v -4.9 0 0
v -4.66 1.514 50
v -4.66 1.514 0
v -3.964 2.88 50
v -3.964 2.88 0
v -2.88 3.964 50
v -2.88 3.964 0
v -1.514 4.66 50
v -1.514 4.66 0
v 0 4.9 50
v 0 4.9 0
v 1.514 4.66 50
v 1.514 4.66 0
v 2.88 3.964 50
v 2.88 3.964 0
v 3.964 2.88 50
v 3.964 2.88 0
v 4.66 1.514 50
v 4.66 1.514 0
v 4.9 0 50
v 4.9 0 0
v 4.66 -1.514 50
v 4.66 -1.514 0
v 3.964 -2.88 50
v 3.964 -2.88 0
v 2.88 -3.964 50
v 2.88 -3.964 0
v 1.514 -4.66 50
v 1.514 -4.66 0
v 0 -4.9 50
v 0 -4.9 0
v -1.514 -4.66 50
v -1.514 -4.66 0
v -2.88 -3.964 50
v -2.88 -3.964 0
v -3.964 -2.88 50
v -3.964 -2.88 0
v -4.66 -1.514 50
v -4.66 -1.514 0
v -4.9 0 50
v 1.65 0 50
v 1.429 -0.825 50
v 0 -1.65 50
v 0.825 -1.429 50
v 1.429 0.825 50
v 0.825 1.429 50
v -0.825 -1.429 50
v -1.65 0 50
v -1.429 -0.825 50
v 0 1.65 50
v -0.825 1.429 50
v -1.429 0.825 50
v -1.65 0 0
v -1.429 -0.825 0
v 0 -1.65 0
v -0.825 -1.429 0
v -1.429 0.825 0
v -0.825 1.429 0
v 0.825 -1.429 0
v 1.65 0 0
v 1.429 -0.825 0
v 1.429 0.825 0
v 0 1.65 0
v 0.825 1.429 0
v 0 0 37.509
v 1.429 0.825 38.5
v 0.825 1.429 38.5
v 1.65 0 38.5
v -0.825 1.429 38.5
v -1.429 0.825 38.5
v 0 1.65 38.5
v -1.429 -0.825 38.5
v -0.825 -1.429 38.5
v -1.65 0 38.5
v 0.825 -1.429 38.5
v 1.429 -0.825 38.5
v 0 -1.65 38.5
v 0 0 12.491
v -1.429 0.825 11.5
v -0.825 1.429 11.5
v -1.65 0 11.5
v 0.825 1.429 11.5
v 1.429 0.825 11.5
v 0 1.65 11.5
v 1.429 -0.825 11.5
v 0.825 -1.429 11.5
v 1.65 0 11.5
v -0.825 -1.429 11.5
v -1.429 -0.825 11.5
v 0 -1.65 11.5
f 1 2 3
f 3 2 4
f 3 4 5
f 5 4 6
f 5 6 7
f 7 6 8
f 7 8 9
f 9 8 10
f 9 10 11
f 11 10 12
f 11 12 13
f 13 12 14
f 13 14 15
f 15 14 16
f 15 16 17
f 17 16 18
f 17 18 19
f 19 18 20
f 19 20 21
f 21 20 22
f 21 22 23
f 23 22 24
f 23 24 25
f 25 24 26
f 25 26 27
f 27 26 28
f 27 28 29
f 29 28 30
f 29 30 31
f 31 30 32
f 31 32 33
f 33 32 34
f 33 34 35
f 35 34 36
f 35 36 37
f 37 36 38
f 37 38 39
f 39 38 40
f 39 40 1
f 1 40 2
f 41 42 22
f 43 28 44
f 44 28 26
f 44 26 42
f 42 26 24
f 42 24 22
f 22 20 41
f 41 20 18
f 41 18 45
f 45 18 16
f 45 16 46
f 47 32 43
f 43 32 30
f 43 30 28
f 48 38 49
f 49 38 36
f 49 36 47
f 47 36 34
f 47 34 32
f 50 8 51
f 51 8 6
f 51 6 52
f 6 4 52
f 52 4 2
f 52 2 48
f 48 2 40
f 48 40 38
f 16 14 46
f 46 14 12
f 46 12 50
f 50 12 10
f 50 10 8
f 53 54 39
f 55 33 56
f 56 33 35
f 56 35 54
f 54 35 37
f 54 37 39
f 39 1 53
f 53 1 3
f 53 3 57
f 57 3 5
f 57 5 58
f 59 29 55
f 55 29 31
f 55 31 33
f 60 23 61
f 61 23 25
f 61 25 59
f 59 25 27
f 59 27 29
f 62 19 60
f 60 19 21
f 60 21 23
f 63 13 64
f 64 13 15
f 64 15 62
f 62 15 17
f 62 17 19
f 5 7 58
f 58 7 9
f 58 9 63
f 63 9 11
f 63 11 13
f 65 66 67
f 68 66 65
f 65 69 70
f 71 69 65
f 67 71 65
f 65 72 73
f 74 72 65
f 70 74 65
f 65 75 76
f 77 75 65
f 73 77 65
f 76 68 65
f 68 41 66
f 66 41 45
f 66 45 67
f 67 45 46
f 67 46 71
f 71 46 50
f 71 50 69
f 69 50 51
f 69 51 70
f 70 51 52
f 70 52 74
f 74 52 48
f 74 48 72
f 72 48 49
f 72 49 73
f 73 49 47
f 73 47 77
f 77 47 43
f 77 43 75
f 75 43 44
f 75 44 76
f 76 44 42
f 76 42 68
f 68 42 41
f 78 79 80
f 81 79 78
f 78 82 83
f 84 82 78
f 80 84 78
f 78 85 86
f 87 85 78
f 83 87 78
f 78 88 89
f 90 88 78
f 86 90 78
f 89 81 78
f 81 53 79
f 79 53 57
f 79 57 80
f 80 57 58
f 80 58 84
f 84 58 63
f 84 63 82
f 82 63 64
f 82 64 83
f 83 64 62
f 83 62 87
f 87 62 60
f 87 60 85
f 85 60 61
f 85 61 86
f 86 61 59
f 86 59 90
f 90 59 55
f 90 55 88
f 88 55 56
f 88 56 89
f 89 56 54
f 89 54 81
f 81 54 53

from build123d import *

# Parameters (mm, degrees)
SKETCH_1_R             = 4.9
EXTRUDE_1_DEPTH        = 50
HOLE_WIZARD_M4_1_D     = 3.3
HOLE_WIZARD_M4_1_DEPTH = 11.5
HOLE_WIZARD_M4_1_TIP   = 0.991420021
HOLE_WIZARD_M4_2_D     = 3.3
HOLE_WIZARD_M4_2_DEPTH = 11.5
HOLE_WIZARD_M4_2_TIP   = 0.991420021


with BuildPart() as part:
    # 스케치1 → 보스-돌출1 (new body)
    with BuildSketch(Plane.XY):
        Circle(SKETCH_1_R)
    extrude(amount=EXTRUDE_1_DEPTH)

    # M4 나사 구멍1
    with Locations(Plane.XY.offset(50)):
        with Locations((0, 0)):
            Hole(HOLE_WIZARD_M4_1_D / 2, depth=HOLE_WIZARD_M4_1_DEPTH)
            with Locations((0, 0, -(HOLE_WIZARD_M4_1_DEPTH + HOLE_WIZARD_M4_1_TIP / 2))):  # 118° drill point
                Cone(0, HOLE_WIZARD_M4_1_D / 2, HOLE_WIZARD_M4_1_TIP, mode=Mode.SUBTRACT)

    # M4 나사 구멍2
    with Locations(Plane(origin=(0, 0, 0), x_dir=(-1, 0, 0), z_dir=(0, 0, -1))):
        with Locations((0, 0)):
            Hole(HOLE_WIZARD_M4_2_D / 2, depth=HOLE_WIZARD_M4_2_DEPTH)
            with Locations((0, 0, -(HOLE_WIZARD_M4_2_DEPTH + HOLE_WIZARD_M4_2_TIP / 2))):  # 118° drill point
                Cone(0, HOLE_WIZARD_M4_2_D / 2, HOLE_WIZARD_M4_2_TIP, mode=Mode.SUBTRACT)


solid = part.part
